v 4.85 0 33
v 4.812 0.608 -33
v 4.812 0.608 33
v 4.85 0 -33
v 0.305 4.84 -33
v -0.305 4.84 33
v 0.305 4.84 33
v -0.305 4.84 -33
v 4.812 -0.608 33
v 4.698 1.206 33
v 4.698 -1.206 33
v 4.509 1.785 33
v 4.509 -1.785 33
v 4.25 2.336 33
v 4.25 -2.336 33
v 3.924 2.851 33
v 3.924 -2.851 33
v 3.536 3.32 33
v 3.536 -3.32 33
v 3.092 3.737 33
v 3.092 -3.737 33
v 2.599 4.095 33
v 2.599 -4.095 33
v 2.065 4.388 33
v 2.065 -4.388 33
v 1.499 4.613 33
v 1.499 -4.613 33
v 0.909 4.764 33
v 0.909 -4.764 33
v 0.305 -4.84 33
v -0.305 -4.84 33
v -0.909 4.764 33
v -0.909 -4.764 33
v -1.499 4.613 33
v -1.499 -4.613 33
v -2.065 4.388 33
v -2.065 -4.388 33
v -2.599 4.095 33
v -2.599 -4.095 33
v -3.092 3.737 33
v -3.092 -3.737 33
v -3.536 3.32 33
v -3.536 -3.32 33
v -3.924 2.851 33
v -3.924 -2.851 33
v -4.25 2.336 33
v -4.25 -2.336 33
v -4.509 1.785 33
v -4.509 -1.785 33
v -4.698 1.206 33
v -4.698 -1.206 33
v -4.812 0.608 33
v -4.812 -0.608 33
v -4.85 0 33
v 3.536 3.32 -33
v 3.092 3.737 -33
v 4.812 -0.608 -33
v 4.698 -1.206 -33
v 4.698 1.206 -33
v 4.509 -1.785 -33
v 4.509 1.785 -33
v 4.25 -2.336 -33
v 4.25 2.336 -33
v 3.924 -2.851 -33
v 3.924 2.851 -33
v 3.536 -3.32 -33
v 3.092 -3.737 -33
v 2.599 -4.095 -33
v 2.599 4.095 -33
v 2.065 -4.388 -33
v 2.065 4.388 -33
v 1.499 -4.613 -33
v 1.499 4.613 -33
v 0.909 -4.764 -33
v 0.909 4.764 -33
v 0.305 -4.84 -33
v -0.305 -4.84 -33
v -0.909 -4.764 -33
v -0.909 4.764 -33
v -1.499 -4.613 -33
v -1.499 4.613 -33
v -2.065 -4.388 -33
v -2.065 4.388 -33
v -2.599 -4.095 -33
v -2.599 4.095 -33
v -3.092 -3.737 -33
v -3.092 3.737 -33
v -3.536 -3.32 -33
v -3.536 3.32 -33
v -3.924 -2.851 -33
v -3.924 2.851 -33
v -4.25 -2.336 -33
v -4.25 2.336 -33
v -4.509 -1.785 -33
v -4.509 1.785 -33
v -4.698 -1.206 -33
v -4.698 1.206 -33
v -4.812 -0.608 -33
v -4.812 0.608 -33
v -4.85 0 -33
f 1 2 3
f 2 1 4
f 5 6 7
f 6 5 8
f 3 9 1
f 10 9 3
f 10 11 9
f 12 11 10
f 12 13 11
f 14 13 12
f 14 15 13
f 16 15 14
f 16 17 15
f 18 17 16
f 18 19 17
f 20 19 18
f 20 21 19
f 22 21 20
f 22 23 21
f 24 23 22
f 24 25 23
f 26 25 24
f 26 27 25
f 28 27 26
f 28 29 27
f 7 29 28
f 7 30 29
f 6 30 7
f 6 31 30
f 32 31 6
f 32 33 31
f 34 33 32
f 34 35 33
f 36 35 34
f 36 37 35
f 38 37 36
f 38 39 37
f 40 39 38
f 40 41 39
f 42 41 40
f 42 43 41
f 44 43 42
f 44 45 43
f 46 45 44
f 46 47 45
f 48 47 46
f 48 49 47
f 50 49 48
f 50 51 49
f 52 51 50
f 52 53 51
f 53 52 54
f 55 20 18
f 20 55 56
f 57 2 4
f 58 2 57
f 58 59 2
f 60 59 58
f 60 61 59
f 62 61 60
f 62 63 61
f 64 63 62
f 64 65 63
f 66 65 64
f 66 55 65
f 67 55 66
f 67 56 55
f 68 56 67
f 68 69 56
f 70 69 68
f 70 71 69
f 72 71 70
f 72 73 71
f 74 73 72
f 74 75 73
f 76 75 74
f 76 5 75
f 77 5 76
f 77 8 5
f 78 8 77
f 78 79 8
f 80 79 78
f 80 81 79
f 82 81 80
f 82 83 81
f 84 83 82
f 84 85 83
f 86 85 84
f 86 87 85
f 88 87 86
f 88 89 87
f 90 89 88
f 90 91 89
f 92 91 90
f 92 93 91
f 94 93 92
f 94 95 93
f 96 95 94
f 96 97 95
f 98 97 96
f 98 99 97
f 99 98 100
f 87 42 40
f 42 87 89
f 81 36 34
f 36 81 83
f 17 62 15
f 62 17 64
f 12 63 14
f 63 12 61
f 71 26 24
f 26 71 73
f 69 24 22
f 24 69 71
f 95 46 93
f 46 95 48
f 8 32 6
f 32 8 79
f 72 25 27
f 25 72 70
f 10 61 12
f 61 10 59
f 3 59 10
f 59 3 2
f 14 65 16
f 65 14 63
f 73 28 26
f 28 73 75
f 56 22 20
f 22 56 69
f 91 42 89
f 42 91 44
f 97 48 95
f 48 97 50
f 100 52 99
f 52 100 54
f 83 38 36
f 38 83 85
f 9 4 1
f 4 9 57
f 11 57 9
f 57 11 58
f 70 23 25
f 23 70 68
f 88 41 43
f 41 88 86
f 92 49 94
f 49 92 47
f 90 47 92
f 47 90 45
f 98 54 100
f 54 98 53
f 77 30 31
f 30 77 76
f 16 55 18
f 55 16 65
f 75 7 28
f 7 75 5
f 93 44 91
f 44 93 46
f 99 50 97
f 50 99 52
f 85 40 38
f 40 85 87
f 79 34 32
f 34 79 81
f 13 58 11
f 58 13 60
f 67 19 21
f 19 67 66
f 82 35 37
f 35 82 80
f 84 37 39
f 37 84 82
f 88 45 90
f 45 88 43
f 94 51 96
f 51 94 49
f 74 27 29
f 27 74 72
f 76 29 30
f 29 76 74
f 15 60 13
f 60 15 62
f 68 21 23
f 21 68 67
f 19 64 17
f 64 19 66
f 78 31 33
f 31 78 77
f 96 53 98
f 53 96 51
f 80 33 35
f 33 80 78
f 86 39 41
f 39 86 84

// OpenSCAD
$fn = 50;


difference() {
	union() {
		translate(v = [0, 0, -33.0000000000]) {
			cylinder(h = 66, r = 4.8500000000);
		}
	}
	union() {
		translate(v = [0, 0, -100.0000000000]) {
			cylinder(h = 200, r = 0);
		}
	}
}
